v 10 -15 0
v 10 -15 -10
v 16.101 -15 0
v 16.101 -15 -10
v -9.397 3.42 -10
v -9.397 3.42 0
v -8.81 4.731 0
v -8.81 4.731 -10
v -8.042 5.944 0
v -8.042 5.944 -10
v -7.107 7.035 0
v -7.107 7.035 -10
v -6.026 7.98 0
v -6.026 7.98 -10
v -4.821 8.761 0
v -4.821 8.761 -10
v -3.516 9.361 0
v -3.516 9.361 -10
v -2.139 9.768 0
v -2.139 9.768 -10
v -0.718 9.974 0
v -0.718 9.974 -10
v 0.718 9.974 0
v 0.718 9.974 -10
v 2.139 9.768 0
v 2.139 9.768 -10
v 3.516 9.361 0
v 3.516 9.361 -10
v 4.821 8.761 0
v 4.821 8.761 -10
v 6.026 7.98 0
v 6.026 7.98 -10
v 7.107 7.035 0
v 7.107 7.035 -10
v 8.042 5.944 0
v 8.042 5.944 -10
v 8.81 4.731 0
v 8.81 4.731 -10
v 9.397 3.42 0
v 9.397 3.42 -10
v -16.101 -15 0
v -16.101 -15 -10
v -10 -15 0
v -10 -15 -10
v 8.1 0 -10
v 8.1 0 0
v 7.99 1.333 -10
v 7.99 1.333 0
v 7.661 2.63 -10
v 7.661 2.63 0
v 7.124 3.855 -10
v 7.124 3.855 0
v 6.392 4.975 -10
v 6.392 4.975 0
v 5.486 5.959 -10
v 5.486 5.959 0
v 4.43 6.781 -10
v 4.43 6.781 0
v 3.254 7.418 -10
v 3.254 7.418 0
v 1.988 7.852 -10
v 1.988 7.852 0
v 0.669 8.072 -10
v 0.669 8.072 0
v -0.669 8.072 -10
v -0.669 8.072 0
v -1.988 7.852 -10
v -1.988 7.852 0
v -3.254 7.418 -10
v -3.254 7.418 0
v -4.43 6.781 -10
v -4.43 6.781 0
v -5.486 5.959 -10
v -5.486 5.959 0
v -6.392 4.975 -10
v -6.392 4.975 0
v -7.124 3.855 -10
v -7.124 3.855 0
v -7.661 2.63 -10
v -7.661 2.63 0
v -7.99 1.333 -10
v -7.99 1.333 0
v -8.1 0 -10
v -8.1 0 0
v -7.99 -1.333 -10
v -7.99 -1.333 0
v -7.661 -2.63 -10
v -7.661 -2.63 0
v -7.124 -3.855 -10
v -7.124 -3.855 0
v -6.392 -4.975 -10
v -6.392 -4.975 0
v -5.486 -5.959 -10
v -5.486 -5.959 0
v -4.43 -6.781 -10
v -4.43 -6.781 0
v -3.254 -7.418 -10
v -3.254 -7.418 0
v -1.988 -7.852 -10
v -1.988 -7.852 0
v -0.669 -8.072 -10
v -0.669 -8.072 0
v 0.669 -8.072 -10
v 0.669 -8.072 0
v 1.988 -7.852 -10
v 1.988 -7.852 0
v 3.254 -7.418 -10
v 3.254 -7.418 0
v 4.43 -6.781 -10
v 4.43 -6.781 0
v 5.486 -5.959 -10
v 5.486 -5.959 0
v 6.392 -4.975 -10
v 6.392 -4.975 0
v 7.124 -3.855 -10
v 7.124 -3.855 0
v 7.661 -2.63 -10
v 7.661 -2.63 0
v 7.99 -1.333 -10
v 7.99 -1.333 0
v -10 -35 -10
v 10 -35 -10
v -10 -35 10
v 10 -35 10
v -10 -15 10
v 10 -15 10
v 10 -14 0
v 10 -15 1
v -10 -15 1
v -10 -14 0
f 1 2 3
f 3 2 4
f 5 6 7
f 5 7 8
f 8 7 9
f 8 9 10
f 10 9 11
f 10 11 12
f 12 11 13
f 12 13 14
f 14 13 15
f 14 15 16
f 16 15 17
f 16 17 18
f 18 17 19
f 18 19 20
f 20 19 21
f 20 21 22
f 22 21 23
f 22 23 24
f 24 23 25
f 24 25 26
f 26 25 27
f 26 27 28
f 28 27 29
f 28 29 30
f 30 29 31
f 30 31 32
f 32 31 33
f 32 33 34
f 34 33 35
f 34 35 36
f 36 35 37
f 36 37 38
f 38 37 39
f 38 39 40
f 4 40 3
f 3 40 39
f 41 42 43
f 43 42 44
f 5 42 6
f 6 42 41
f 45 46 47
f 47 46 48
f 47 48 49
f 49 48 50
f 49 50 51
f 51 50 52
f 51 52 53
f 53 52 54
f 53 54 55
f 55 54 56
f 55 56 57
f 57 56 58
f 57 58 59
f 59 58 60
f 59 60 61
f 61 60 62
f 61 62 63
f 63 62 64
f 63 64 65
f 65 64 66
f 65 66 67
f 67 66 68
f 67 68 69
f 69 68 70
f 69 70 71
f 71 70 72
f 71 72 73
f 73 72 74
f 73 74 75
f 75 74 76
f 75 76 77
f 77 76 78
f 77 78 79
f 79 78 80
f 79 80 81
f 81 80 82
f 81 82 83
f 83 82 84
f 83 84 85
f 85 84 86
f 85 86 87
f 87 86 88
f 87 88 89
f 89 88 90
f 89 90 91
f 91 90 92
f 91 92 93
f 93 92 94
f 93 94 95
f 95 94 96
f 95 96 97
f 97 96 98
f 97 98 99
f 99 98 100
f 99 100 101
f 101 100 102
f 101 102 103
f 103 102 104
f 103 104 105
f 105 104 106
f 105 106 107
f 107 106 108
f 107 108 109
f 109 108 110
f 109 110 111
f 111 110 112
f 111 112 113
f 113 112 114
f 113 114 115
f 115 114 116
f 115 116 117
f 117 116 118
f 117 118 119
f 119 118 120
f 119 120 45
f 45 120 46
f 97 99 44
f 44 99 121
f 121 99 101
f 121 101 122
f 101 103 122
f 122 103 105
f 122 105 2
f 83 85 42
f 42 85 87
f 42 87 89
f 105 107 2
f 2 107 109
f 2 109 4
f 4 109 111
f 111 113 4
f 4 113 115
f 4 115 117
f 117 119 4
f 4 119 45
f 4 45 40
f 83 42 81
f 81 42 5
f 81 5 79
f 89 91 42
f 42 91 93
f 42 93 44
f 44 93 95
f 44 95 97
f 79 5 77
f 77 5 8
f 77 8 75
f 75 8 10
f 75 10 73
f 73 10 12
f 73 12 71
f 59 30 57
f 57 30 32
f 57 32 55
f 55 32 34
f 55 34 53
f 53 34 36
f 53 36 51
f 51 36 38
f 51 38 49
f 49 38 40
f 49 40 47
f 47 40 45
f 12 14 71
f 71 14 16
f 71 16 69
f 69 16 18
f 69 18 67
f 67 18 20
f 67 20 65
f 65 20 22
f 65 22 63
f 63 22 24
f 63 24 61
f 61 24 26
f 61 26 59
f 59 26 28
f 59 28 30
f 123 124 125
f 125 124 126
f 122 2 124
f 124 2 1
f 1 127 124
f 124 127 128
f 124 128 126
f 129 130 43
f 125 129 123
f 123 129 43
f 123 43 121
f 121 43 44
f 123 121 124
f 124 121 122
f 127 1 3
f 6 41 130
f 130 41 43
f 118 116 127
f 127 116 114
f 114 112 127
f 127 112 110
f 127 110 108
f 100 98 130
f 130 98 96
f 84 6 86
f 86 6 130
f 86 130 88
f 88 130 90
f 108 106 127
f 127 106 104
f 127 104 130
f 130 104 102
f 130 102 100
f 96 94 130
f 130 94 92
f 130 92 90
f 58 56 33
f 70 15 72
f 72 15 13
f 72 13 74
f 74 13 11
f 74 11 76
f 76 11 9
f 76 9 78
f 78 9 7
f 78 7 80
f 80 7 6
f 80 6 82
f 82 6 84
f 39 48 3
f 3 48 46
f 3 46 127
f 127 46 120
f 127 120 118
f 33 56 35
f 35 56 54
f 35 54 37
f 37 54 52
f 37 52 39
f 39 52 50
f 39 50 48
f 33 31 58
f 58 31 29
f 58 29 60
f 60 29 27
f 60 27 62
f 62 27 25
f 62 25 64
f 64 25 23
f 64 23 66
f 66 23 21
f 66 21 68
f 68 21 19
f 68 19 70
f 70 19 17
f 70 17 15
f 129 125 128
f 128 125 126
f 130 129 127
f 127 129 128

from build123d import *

# Parameters (mm, degrees)
SKETCH_1_R      = 10
SKETCH_1_R_2    = 8.1
EXTRUDE_1_DEPTH = 10
SKETCH_2_R      = 8.1
SKETCH_2_R_2    = 6.6
EXTRUDE_2_DEPTH = 10
SKETCH_3_W      = 20
SKETCH_3_H      = 20
EXTRUDE_3_DEPTH = 20
SKETCH1_W       = 32.202662478
SKETCH1_H       = 25
EXTRUDE1_DEPTH  = 10
CHAMFER1_SIZE   = 1


with BuildPart() as part:
    # 스케치1 → 보스-돌출1 (new, symmetric)
    # profile 1 of 2: a face of its own
    with BuildSketch(Plane.XY):
        Circle(SKETCH_1_R)
        Circle(SKETCH_1_R_2, mode=Mode.SUBTRACT)
    # profile 2 of 2: a face of its own
    with BuildSketch(Plane.XY):
        with BuildLine():
            Line((-9.396926208, 3.420201433), (-16.101331239, -15))
            Line((-16.101331239, -15), (16.101331239, -15))
            Line((16.101331239, -15), (9.396926208, 3.420201433))
            ThreePointArc((9.396926208, 3.420201433), (9.84807753, 1.736481777), (10, 0))
            ThreePointArc((10, 0), (-1.736481777, -9.84807753), (-9.396926208, 3.420201433))
        make_face()
    extrude(amount=EXTRUDE_1_DEPTH, both=True)

    # 스케치2 → 보스-돌출2 (add)
    with BuildSketch(Plane.XY):
        Circle(SKETCH_2_R)
        Circle(SKETCH_2_R_2, mode=Mode.SUBTRACT)
    extrude(amount=EXTRUDE_2_DEPTH)

    # 스케치3 → 보스-돌출3 (add)
    with BuildSketch(Plane.XZ.offset(15)):
        Rectangle(SKETCH_3_W, SKETCH_3_H)
    extrude(amount=EXTRUDE_3_DEPTH)

    # Sketch1 → Extrude1 (cut)
    with BuildSketch(Plane.XY.offset(10)):
        with Locations((0, -2.5)):
            Rectangle(SKETCH1_W, SKETCH1_H)
    extrude(amount=-EXTRUDE1_DEPTH, mode=Mode.SUBTRACT)

    # Chamfer1
    chamfer1_edges = [part.edges().sort_by_distance(p)[0] for p in [
        (0, -15, 0),
    ]]
    chamfer(chamfer1_edges, length=CHAMFER1_SIZE)


solid = part.part
